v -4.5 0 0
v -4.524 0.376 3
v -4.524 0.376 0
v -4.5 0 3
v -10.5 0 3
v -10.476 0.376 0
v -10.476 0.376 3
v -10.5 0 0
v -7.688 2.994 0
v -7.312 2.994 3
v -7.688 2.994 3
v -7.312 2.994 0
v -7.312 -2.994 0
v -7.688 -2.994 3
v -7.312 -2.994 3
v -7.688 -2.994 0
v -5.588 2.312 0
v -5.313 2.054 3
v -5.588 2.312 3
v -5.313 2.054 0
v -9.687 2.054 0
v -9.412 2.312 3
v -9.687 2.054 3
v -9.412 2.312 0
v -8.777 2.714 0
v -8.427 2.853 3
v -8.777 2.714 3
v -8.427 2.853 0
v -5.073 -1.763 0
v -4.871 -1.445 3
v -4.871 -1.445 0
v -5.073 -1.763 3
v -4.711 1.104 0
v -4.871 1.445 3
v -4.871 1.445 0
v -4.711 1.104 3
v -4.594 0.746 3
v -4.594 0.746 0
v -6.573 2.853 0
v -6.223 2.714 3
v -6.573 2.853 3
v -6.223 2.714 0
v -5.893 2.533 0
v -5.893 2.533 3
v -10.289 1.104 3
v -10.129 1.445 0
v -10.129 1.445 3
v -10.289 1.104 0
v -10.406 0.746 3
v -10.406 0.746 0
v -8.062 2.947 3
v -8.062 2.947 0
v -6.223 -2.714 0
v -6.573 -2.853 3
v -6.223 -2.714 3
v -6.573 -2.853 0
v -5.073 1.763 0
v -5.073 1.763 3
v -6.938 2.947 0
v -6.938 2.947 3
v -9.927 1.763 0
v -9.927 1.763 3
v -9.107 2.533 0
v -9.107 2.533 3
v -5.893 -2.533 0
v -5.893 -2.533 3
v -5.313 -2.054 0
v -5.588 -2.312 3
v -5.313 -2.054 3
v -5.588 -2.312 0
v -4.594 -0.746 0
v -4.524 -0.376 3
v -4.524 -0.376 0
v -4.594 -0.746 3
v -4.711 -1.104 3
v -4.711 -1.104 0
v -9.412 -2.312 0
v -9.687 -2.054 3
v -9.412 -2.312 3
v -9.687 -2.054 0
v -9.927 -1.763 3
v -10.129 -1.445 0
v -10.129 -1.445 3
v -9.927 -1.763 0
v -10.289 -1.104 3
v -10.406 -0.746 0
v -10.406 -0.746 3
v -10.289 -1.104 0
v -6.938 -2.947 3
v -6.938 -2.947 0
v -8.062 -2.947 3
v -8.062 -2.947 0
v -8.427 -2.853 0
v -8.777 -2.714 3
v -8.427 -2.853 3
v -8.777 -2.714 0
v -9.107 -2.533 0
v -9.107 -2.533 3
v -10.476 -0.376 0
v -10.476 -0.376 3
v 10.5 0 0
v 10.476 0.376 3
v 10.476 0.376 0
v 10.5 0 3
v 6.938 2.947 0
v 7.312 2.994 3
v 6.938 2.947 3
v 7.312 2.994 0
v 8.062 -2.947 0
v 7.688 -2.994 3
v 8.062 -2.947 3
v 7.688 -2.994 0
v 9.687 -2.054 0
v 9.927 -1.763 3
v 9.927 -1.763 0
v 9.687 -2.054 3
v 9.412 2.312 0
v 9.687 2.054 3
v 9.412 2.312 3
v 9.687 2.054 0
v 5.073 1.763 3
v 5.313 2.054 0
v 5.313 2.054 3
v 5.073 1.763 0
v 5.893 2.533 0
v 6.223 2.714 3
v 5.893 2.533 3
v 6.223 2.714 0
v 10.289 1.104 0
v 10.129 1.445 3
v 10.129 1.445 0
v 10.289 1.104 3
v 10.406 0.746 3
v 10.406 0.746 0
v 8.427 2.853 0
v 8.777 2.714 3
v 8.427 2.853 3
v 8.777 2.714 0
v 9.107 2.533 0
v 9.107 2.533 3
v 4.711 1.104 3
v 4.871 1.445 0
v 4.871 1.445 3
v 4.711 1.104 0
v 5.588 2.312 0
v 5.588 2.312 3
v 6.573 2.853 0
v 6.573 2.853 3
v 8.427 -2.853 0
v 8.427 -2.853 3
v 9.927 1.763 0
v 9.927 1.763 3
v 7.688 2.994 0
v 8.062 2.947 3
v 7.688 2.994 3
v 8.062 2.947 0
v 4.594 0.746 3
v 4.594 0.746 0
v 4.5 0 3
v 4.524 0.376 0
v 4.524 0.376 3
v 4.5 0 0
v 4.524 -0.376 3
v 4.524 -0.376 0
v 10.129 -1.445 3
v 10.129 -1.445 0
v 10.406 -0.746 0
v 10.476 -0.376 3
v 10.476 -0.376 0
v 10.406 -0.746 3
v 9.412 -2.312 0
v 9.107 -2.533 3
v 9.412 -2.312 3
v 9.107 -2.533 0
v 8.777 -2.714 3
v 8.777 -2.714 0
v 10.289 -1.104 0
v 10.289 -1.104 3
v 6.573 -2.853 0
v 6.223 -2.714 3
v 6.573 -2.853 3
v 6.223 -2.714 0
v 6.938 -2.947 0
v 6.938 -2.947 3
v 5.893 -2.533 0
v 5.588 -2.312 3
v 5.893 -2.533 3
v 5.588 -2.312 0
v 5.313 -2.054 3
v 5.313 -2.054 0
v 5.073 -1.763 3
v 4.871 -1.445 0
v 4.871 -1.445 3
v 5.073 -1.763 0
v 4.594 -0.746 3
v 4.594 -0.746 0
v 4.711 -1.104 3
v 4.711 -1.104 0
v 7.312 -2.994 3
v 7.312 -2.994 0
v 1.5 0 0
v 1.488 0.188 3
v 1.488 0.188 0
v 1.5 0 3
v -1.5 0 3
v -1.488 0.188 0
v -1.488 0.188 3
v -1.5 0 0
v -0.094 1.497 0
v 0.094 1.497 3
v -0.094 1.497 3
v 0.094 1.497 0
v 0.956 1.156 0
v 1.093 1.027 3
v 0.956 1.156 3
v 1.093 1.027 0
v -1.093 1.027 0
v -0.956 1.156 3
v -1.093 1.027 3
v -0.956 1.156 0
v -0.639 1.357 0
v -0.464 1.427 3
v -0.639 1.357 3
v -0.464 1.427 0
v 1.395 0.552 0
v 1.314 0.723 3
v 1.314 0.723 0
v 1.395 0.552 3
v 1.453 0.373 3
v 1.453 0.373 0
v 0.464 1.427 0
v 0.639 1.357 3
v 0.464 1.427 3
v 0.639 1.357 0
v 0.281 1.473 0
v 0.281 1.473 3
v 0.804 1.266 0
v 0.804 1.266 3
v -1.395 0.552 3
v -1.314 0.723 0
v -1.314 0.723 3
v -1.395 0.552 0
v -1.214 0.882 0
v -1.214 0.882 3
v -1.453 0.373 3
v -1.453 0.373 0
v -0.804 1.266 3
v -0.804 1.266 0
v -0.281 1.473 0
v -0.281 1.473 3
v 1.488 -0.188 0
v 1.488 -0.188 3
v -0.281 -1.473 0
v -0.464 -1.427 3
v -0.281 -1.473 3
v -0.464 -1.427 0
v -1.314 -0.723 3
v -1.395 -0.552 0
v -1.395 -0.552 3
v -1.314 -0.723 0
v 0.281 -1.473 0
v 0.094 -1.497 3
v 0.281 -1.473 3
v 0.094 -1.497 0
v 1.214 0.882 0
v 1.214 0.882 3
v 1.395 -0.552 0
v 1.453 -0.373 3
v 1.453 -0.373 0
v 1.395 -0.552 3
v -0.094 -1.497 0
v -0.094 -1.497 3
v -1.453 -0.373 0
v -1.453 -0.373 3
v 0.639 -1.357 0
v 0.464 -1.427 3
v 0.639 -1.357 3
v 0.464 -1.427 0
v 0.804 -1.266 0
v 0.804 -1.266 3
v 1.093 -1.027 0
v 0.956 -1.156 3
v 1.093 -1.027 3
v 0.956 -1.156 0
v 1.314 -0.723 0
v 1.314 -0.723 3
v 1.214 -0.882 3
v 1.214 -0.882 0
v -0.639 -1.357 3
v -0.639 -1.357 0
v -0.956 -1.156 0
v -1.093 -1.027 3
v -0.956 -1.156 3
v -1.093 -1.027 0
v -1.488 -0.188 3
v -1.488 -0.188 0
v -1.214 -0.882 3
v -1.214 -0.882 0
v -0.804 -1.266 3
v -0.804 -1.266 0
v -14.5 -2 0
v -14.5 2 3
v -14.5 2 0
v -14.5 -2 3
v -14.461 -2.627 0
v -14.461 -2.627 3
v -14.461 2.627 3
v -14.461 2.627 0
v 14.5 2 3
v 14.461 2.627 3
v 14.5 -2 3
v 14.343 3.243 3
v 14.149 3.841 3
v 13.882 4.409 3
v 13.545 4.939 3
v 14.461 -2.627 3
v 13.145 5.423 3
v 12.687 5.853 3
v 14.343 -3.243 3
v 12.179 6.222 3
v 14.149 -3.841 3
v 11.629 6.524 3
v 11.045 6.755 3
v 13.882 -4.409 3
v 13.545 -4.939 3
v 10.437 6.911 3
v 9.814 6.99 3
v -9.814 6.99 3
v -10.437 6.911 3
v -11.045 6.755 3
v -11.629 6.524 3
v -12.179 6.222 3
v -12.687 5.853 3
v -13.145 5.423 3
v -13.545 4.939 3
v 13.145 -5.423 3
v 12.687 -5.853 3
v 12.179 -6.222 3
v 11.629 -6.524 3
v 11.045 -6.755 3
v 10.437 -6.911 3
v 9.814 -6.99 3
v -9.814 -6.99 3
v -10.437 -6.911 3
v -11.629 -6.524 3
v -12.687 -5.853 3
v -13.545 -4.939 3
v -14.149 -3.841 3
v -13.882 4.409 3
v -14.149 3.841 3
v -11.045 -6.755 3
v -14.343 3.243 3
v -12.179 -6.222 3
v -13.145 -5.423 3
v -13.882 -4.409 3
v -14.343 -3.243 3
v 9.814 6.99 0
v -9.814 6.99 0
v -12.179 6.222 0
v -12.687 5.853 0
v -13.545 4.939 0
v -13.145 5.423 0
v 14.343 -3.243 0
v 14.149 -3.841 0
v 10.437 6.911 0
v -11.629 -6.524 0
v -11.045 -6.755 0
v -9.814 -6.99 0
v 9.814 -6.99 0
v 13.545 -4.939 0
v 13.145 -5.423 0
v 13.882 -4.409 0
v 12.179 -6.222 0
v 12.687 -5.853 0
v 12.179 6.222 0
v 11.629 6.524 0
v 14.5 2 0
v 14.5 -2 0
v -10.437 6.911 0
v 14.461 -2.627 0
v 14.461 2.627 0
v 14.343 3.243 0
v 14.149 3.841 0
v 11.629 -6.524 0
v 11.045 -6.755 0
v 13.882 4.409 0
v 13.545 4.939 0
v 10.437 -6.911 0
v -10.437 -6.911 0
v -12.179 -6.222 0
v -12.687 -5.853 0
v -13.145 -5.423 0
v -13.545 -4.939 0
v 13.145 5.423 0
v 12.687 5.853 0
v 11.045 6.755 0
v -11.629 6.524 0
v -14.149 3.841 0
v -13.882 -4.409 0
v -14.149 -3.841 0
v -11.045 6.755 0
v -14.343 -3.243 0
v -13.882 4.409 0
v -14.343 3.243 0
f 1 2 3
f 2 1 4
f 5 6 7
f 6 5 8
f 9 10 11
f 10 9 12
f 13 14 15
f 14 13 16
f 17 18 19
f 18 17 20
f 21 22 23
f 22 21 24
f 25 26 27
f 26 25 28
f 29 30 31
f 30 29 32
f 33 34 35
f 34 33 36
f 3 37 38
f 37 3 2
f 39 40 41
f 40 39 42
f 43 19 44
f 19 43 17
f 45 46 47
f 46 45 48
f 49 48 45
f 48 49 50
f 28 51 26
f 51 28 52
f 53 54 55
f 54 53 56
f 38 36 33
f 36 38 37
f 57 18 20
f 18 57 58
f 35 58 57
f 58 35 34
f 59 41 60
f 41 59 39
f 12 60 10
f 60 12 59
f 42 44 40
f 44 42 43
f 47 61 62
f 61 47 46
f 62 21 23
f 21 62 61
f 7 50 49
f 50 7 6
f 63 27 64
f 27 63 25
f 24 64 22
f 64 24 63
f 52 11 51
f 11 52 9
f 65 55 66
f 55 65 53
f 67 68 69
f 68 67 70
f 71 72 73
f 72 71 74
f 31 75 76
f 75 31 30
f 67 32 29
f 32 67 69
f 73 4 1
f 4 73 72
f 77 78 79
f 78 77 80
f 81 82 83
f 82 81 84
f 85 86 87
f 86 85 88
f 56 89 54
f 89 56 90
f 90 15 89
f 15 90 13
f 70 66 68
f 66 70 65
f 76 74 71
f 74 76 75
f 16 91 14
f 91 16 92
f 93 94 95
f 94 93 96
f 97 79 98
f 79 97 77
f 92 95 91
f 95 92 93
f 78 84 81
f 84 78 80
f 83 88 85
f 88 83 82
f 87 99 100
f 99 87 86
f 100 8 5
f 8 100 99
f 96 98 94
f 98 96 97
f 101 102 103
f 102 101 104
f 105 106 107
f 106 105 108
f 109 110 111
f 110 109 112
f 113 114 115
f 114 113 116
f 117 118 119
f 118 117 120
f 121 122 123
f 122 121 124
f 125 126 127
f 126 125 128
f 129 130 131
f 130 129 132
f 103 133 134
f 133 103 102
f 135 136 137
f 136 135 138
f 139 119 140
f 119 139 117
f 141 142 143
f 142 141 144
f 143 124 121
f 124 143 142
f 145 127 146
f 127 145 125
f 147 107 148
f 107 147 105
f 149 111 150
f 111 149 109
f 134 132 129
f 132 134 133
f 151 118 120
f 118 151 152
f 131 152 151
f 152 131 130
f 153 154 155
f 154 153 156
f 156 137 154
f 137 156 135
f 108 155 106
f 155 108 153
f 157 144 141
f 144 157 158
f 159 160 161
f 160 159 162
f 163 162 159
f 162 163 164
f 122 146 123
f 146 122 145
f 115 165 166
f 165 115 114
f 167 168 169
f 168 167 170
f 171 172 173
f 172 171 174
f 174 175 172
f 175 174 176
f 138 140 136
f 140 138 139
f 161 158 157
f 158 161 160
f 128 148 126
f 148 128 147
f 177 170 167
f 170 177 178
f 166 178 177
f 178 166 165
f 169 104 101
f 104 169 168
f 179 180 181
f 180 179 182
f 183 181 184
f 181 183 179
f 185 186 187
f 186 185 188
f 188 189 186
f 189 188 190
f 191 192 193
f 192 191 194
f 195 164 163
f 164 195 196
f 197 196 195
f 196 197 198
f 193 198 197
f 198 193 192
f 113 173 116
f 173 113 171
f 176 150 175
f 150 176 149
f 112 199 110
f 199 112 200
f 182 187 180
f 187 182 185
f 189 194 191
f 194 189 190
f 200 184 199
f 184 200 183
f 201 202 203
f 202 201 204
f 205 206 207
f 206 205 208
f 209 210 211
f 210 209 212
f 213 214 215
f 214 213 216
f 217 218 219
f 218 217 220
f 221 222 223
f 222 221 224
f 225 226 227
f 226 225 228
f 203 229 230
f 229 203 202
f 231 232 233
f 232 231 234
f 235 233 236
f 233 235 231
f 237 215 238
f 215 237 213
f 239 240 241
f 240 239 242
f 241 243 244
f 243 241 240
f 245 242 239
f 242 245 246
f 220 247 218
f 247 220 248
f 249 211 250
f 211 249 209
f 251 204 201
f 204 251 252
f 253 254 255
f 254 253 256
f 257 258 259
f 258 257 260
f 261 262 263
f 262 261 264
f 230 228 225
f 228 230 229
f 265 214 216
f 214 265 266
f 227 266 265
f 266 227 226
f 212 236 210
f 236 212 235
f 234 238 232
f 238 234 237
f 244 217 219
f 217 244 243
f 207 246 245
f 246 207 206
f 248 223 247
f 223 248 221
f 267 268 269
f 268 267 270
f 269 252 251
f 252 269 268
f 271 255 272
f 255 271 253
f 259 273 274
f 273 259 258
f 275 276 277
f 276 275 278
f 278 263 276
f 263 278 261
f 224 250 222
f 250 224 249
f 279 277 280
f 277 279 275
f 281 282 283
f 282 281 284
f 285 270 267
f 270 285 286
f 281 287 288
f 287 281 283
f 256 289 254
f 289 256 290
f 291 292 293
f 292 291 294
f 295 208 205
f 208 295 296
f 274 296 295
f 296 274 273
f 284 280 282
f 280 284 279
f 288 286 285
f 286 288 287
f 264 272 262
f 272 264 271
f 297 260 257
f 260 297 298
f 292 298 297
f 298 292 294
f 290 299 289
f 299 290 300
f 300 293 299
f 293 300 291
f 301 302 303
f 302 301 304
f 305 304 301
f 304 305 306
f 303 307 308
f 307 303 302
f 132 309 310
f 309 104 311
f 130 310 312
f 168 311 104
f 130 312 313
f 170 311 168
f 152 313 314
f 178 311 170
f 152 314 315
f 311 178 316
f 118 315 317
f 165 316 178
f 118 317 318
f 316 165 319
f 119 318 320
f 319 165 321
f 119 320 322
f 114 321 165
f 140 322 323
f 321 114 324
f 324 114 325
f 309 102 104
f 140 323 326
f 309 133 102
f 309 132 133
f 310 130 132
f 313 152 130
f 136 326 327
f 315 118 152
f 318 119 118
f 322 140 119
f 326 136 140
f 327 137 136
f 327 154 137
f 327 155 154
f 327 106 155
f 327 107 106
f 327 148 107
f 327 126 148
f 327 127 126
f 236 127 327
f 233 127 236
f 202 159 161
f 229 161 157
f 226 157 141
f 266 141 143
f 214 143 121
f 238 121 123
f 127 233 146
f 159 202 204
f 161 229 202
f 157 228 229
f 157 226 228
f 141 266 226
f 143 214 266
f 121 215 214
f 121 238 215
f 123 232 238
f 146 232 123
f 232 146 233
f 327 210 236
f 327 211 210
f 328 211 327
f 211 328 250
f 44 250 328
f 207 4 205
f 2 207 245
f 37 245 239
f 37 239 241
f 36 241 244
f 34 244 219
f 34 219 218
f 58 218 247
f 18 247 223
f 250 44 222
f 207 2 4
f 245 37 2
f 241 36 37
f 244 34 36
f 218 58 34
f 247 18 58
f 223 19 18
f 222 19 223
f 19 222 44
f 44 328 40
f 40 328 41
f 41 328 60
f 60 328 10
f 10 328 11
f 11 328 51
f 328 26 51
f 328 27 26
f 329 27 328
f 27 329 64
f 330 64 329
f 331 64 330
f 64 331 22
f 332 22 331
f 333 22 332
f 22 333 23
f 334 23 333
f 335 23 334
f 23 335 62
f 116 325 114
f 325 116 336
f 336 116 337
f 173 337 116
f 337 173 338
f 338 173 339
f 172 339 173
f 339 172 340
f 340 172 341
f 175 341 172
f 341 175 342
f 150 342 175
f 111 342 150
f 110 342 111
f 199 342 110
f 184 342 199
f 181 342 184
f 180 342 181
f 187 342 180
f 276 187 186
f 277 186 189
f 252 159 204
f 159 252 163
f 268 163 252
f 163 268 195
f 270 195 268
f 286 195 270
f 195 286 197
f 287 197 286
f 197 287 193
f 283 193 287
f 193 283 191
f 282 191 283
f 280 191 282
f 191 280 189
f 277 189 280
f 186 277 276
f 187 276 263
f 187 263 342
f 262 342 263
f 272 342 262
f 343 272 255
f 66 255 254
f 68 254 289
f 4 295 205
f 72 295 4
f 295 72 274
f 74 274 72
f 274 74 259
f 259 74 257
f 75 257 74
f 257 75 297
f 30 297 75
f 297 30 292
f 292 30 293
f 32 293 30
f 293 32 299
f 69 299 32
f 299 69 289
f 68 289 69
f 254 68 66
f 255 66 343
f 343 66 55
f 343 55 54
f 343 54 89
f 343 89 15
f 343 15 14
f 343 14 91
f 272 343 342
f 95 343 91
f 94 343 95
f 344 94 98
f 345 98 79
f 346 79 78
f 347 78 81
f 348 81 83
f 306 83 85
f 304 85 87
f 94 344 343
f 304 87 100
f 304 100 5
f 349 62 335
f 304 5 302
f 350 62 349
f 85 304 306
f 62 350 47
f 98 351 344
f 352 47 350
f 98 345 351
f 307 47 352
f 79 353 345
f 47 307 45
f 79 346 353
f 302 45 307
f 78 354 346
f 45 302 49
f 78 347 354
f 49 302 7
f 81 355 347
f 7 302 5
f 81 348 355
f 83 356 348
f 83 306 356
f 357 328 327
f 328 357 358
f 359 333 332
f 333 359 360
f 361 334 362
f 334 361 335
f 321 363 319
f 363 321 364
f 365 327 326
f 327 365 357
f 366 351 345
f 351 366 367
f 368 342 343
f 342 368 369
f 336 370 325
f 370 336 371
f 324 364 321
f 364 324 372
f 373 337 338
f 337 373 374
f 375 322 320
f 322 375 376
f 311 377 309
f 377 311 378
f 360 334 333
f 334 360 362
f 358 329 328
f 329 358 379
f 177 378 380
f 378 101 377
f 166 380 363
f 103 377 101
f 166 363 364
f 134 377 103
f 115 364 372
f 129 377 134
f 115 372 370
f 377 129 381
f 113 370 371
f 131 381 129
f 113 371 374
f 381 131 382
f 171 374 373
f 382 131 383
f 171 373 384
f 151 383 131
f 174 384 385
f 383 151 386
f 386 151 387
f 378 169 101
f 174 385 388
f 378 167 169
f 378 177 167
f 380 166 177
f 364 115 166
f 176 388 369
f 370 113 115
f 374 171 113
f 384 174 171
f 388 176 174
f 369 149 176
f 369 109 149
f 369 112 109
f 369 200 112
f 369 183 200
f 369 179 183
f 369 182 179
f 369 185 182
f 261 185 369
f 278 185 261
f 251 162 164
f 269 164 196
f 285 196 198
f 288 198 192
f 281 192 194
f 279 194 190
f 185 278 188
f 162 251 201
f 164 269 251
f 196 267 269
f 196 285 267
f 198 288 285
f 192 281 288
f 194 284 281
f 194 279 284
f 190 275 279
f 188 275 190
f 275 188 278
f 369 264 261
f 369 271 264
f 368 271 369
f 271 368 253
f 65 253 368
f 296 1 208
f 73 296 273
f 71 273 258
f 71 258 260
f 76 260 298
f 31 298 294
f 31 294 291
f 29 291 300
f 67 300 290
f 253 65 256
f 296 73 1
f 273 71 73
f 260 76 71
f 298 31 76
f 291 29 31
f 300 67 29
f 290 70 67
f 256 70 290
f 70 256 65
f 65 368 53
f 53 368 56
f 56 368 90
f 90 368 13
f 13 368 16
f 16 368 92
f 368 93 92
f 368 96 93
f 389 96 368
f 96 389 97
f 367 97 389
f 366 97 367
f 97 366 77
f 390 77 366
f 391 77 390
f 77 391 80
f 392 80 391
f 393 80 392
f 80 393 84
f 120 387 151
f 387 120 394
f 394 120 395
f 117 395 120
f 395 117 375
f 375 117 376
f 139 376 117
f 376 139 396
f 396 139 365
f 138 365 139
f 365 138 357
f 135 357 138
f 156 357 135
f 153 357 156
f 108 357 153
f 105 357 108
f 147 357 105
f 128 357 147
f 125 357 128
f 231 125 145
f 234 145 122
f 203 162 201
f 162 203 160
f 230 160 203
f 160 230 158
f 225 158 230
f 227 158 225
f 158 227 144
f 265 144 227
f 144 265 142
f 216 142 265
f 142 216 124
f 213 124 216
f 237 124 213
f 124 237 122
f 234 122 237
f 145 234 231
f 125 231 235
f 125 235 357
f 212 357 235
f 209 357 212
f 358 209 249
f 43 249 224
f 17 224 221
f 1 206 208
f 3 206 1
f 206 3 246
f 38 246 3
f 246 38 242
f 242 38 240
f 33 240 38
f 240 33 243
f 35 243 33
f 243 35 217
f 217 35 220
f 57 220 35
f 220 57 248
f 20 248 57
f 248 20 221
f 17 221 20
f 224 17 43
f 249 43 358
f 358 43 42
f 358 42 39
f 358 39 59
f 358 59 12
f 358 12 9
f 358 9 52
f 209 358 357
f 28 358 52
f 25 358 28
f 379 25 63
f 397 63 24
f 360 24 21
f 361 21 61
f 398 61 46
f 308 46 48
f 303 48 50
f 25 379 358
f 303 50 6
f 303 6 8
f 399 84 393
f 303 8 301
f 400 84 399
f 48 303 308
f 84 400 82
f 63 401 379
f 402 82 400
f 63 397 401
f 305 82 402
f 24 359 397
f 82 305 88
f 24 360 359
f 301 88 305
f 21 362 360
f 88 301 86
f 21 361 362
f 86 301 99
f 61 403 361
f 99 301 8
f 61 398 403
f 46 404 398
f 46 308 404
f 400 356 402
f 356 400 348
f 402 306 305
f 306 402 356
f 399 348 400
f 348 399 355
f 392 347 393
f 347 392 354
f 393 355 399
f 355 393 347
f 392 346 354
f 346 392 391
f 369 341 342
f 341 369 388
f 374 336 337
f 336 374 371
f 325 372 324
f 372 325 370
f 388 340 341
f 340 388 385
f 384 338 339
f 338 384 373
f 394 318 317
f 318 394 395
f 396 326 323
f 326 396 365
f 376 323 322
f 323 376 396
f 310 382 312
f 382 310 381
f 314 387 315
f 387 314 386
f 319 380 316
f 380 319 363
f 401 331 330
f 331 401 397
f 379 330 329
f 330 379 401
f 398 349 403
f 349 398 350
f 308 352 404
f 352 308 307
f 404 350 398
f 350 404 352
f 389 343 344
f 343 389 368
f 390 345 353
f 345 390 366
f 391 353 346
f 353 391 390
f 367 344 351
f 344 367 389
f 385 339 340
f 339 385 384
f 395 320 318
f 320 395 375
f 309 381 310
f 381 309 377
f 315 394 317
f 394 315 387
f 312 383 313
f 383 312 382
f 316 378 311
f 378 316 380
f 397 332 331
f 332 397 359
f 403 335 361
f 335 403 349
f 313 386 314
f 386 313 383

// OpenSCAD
$fn = 50;


difference() {
	union() {
		translate(v = [0, 0, 0]) {
			rotate(a = [0, 0, 0]) {
				hull() {
					translate(v = [-9.5000000000, 2.0000000000, 0]) {
						rotate(a = [0, 0, 0]) {
							translate(v = [0, 0, 0]) {
								rotate(a = [0, 0, 0]) {
									cylinder(h = 3, r = 5);
								}
							}
						}
					}
					translate(v = [9.5000000000, 2.0000000000, 0]) {
						rotate(a = [0, 0, 0]) {
							translate(v = [0, 0, 0]) {
								rotate(a = [0, 0, 0]) {
									cylinder(h = 3, r = 5);
								}
							}
						}
					}
					translate(v = [-9.5000000000, -2.0000000000, 0]) {
						rotate(a = [0, 0, 0]) {
							translate(v = [0, 0, 0]) {
								rotate(a = [0, 0, 0]) {
									cylinder(h = 3, r = 5);
								}
							}
						}
					}
					translate(v = [9.5000000000, -2.0000000000, 0]) {
						rotate(a = [0, 0, 0]) {
							translate(v = [0, 0, 0]) {
								rotate(a = [0, 0, 0]) {
									cylinder(h = 3, r = 5);
								}
							}
						}
					}
				}
			}
		}
	}
	union() {
		translate(v = [-7.5000000000, 0.0000000000, 0]) {
			rotate(a = [0, 0, 0]) {
				translate(v = [0, 0, -50]) {
					rotate(a = [0, 0, 0]) {
						cylinder(h = 100, r = 3.0000000000);
					}
				}
			}
		}
		translate(v = [7.5000000000, 0.0000000000, 0]) {
			rotate(a = [0, 0, 0]) {
				translate(v = [0, 0, -50]) {
					rotate(a = [0, 0, 0]) {
						cylinder(h = 100, r = 3.0000000000);
					}
				}
			}
		}
		translate(v = [-7.5000000000, 0.0000000000, 0]) {
			rotate(a = [0, 0, 0]) {
				translate(v = [0, 0, -50]) {
					rotate(a = [0, 0, 0]) {
						cylinder(h = 100, r = 1.5000000000);
					}
				}
			}
		}
		translate(v = [0.0000000000, 0.0000000000, 0]) {
			rotate(a = [0, 0, 0]) {
				translate(v = [0, 0, -50]) {
					rotate(a = [0, 0, 0]) {
						cylinder(h = 100, r = 1.5000000000);
					}
				}
			}
		}
		translate(v = [7.5000000000, 0.0000000000, 0]) {
			rotate(a = [0, 0, 0]) {
				translate(v = [0, 0, -50]) {
					rotate(a = [0, 0, 0]) {
						cylinder(h = 100, r = 1.5000000000);
					}
				}
			}
		}
	}
}
